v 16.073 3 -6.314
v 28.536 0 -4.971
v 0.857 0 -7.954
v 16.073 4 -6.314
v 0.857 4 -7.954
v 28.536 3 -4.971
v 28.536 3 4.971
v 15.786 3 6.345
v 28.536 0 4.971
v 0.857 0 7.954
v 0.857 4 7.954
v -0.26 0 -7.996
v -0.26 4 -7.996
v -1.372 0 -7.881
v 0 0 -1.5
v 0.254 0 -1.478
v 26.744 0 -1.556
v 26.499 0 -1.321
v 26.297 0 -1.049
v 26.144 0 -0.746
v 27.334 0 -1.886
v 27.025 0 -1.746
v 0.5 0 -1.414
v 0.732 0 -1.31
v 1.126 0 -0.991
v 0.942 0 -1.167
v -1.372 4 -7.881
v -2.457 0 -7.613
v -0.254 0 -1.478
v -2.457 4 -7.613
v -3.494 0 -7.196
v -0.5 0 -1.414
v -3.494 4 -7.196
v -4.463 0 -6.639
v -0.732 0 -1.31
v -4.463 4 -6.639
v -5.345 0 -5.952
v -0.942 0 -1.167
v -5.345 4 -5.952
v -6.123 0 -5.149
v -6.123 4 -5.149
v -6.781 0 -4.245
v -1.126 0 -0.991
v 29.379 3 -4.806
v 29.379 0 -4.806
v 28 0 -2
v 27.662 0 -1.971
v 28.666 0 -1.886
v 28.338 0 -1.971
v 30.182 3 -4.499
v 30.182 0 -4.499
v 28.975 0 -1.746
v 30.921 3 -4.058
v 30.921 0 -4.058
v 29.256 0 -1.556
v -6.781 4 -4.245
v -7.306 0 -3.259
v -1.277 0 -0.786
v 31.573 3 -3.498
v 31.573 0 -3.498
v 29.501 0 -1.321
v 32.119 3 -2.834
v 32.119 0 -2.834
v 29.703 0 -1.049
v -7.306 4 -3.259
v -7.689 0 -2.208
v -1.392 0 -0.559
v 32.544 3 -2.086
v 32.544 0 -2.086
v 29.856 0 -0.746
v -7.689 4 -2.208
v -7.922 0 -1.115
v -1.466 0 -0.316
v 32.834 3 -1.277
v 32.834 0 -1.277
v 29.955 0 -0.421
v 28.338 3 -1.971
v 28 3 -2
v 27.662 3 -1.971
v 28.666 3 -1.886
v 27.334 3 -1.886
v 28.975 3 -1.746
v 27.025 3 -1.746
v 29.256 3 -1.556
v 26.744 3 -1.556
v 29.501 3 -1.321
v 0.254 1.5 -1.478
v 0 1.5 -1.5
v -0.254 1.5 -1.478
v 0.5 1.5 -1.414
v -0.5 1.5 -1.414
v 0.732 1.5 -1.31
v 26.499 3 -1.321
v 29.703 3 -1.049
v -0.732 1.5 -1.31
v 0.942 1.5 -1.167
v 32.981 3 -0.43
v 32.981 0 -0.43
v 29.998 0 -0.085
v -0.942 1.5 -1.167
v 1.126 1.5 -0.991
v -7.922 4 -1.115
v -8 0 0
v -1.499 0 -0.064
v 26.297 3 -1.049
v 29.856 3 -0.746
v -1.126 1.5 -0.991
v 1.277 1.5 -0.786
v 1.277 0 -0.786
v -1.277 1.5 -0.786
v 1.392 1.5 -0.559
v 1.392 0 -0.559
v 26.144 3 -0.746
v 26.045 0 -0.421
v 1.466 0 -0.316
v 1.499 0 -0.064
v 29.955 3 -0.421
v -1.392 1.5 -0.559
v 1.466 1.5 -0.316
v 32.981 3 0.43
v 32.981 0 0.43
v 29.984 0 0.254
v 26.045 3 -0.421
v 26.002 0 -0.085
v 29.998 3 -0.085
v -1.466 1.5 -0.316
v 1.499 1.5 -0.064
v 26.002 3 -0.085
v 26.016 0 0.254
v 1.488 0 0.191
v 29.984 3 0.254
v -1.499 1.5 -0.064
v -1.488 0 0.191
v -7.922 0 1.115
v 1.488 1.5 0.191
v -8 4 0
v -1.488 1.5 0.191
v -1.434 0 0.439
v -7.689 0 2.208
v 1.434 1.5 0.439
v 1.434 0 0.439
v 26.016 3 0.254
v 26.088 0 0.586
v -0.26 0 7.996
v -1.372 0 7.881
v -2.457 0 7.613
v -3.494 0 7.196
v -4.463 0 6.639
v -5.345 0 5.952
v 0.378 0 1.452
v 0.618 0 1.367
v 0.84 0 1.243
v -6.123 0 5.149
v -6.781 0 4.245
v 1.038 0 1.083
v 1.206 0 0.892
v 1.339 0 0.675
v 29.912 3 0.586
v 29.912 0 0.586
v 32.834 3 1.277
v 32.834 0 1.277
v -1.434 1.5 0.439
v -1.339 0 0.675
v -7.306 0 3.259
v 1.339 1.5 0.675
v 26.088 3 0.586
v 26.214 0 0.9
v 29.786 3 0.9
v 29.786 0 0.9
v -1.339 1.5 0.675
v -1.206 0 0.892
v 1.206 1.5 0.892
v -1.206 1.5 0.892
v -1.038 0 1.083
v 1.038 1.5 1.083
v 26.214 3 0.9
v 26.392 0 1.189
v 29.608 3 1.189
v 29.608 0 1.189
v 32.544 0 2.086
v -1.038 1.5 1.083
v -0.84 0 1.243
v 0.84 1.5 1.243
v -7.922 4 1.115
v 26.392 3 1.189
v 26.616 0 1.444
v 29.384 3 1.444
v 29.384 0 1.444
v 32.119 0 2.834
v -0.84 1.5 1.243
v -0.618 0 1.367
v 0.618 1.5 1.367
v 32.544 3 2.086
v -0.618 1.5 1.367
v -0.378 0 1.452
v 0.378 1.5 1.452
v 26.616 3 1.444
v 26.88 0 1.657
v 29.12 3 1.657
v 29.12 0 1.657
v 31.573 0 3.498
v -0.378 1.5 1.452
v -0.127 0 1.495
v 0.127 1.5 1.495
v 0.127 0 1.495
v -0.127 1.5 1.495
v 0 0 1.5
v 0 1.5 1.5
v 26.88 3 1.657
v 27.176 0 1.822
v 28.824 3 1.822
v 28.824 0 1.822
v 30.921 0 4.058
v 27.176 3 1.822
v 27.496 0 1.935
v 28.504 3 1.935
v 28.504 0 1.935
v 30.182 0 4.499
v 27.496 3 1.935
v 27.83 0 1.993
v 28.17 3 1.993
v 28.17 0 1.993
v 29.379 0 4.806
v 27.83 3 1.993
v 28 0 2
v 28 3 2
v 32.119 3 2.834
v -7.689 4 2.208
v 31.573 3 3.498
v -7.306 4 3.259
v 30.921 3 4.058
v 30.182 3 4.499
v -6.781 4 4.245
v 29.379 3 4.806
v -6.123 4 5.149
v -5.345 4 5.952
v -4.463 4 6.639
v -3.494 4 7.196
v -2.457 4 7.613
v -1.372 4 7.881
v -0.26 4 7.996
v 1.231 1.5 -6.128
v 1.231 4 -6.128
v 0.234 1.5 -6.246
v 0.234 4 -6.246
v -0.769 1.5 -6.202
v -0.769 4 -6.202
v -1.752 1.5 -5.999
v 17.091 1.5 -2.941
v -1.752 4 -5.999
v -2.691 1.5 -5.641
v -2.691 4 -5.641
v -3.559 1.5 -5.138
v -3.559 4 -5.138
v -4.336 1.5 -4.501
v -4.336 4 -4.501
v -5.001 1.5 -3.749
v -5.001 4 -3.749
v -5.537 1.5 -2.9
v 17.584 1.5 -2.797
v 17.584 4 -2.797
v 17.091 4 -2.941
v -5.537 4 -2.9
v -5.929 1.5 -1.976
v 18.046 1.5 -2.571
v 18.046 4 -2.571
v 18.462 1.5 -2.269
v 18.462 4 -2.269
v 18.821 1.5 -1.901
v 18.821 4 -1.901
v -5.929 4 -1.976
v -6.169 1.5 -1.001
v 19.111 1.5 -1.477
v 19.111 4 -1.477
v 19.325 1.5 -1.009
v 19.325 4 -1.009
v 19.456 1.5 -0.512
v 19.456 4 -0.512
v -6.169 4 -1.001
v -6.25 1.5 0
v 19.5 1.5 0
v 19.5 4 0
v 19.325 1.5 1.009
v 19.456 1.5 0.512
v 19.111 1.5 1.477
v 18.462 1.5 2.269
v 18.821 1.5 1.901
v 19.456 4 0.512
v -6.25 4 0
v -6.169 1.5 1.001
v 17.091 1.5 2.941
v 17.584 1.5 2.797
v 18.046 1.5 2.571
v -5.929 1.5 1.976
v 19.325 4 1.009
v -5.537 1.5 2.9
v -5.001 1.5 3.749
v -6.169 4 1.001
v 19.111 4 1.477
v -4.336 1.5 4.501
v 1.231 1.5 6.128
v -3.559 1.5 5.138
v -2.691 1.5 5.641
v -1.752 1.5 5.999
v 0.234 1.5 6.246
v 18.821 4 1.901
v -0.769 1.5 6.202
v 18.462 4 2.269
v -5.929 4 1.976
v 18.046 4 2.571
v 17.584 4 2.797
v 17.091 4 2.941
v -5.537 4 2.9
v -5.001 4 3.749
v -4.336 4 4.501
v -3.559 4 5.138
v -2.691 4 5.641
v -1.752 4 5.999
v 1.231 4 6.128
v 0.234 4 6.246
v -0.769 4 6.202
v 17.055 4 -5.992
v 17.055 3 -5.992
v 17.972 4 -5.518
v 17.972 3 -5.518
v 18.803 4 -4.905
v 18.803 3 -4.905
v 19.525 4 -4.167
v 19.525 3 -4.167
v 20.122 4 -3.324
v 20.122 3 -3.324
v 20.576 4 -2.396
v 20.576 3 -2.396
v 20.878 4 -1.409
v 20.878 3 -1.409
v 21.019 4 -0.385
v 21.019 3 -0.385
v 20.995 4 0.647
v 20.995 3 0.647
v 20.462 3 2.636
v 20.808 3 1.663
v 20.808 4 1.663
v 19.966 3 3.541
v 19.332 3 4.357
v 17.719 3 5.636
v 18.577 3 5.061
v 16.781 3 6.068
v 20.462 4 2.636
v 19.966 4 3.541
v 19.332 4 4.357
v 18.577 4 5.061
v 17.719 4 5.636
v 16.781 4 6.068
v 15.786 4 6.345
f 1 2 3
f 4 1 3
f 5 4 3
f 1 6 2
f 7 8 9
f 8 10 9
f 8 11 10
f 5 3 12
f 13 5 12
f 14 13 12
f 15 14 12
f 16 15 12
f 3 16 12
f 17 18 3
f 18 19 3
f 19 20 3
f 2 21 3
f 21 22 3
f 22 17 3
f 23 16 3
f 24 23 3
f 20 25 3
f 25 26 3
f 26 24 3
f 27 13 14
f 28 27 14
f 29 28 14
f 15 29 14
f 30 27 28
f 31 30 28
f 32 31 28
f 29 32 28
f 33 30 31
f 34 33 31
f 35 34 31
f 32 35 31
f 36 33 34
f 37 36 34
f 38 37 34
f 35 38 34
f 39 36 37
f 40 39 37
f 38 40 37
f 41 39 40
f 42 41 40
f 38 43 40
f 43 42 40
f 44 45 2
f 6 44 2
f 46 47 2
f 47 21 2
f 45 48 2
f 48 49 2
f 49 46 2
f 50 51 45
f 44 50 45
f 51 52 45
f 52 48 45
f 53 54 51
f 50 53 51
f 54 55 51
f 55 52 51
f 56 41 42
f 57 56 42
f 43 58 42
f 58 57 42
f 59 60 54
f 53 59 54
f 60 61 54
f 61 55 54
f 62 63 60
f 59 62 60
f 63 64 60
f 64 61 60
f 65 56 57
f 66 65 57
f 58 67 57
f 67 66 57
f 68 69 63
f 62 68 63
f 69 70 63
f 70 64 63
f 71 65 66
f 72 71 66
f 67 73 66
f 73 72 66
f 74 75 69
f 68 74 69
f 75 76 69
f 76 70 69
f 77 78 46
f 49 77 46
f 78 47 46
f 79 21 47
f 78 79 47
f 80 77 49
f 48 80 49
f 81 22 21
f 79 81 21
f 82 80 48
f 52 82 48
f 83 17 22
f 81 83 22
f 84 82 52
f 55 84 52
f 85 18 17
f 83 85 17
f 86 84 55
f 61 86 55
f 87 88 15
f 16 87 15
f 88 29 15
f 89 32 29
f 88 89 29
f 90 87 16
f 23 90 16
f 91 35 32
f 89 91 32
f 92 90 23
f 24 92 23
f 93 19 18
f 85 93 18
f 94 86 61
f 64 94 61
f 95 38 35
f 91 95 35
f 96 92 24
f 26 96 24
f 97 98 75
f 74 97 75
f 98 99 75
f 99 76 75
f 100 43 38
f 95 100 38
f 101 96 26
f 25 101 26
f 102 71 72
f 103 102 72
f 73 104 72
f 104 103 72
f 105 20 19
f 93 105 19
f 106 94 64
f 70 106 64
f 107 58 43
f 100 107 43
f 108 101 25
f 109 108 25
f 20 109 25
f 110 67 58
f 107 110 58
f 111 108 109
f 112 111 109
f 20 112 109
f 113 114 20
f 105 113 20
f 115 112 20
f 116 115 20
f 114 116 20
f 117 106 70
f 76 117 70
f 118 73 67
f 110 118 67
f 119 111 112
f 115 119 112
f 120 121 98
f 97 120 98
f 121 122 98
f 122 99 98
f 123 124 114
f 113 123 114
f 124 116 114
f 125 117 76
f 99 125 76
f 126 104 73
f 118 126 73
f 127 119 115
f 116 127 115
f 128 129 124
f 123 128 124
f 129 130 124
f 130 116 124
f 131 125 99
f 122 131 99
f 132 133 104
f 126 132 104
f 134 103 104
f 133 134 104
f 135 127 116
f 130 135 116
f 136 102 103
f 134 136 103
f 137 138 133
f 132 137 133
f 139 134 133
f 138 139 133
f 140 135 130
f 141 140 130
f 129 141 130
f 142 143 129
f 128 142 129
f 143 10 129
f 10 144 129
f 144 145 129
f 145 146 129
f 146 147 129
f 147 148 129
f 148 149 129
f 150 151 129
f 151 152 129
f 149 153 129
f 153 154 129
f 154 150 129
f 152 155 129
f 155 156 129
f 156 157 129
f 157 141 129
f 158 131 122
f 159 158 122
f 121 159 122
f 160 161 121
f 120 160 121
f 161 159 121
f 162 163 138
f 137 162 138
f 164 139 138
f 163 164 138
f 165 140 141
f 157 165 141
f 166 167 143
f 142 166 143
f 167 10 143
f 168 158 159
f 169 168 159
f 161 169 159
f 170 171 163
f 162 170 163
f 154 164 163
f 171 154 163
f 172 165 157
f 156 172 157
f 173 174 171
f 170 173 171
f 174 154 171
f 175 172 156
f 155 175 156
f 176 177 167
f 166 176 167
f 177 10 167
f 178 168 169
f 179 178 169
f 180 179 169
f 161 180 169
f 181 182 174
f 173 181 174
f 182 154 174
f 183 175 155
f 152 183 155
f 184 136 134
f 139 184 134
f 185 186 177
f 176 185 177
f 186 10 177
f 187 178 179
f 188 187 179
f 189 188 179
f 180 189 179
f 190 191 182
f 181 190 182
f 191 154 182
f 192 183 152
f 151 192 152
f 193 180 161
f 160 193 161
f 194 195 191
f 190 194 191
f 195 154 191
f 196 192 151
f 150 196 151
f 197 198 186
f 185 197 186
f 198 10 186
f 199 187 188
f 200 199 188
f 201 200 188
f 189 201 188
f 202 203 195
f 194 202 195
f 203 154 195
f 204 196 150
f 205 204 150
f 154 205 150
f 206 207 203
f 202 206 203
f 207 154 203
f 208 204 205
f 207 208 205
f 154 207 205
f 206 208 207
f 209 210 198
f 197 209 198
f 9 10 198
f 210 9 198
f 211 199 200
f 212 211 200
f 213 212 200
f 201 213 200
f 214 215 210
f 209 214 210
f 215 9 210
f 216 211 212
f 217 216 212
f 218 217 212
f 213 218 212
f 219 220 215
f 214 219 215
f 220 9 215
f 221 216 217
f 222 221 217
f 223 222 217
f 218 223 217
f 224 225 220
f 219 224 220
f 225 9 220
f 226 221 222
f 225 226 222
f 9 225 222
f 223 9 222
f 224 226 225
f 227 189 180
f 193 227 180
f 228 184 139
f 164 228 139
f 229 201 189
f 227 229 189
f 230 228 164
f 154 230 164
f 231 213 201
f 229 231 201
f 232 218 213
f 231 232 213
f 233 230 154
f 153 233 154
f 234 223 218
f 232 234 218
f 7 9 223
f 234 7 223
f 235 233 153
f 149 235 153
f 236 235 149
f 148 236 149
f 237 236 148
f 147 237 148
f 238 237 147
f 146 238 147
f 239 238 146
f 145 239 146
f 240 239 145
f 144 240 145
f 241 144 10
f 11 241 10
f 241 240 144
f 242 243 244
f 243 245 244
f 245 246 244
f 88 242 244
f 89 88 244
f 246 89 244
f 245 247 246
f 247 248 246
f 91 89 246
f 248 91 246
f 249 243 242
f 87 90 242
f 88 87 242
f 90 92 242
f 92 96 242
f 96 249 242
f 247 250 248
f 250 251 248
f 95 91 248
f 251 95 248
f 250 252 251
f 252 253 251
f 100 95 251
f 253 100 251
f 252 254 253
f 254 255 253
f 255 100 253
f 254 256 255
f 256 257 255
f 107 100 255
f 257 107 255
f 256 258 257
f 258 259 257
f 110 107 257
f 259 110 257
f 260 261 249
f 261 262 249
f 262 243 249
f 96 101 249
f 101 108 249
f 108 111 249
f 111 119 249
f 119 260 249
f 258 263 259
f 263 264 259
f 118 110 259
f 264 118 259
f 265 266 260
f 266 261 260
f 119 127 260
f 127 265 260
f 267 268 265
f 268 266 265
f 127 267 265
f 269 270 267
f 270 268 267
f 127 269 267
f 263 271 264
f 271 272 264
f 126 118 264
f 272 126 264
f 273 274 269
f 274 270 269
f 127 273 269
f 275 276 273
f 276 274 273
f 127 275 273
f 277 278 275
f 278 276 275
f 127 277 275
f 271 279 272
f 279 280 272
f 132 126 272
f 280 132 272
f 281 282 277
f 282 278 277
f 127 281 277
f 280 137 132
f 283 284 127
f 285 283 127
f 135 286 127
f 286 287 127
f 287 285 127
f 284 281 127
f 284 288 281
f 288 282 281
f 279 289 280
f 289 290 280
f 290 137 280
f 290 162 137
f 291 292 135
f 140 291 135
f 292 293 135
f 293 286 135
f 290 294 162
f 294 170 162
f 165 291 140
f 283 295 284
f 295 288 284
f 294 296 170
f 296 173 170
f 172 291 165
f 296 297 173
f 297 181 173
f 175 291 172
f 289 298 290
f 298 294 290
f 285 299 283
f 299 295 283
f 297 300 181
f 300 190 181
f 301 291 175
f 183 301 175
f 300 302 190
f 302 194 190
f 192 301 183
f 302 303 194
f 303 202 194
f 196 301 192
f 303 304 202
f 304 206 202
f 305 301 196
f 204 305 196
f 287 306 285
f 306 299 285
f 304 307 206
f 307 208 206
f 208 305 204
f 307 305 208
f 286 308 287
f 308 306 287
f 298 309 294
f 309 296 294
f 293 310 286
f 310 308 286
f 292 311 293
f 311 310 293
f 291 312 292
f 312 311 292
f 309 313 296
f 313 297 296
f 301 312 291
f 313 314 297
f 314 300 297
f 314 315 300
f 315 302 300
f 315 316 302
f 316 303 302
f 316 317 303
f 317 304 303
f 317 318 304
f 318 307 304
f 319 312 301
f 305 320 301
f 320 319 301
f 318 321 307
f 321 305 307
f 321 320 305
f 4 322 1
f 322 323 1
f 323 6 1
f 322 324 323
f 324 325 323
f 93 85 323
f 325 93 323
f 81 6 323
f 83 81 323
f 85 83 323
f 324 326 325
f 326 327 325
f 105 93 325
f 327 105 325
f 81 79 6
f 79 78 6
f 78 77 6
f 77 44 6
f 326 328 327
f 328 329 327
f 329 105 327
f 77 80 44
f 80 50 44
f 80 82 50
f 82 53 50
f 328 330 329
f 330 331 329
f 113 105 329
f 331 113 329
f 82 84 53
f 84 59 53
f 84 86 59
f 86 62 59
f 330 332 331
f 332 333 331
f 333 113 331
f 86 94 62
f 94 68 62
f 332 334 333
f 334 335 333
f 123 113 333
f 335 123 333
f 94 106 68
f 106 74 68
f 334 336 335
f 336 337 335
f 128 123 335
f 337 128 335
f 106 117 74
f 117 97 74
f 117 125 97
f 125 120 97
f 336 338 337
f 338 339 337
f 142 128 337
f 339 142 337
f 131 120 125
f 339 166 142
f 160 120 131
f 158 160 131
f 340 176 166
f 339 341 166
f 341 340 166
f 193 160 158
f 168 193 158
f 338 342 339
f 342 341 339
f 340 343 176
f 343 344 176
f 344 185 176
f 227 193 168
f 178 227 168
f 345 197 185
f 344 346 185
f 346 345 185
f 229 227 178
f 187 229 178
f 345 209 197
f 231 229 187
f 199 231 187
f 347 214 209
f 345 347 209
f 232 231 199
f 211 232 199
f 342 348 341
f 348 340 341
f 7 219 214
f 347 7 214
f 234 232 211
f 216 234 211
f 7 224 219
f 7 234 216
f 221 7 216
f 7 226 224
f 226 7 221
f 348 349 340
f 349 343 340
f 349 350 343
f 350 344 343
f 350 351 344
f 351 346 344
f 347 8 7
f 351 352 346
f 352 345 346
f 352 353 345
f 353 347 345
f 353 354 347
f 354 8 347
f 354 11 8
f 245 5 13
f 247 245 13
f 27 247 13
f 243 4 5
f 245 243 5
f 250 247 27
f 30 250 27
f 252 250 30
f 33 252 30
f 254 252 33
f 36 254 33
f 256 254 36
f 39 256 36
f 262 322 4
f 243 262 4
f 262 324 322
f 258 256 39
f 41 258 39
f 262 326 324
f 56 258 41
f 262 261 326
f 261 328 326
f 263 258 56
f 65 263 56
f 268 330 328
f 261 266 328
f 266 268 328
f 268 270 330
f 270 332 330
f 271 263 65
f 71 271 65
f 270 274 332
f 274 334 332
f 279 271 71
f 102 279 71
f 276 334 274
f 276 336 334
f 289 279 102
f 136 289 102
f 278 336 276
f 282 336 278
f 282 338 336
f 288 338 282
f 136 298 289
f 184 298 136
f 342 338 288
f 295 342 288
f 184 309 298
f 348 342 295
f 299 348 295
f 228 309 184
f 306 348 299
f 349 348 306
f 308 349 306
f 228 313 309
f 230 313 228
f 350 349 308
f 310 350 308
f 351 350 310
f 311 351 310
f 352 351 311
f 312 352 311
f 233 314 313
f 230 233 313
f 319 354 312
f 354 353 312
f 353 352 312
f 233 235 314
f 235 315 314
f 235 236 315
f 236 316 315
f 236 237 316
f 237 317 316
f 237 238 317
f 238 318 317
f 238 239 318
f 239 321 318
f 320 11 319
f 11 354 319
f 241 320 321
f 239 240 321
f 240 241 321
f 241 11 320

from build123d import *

# Parameters (mm, degrees)
SKETCH1_R           = 1.5
SKETCH1_R_2         = 2
BOSS_EXTRUDE1_DEPTH = 4
CUT_EXTRUDE1_DEPTH  = 2.5
CUT_EXTRUDE2_START  = -1
SKETCH3_R           = 2
CUT_EXTRUDE2_DEPTH  = 1


with BuildPart() as part:
    # Sketch1 → Boss-Extrude1 (new body)
    with BuildSketch(Plane(origin=(0, 0, 0), x_dir=(1, 0, 0), z_dir=(0, 1, 0))):
        with BuildLine():
            Line((28.535714286, 4.971218181), (0.857142857, 7.95394909))
            ThreePointArc((0.857142857, 7.95394909), (-8, 0), (0.857142857, -7.95394909))
            Line((0.857142857, -7.95394909), (28.535714286, -4.971218181))
            ThreePointArc((28.535714286, -4.971218181), (33, 0), (28.535714286, 4.971218181))
        make_face()
        with Locations(Location((0, 0, 0), (0, 0, 270))):
            Circle(SKETCH1_R, mode=Mode.SUBTRACT)
        with Locations(Location((28, 0, 0), (0, 0, 270))):
            Circle(SKETCH1_R_2, mode=Mode.SUBTRACT)
    extrude(amount=BOSS_EXTRUDE1_DEPTH)

    # Sketch2 → Cut-Extrude1 (cut)
    with BuildSketch(Plane(origin=(0, 4, 0), x_dir=(1, 0, 0), z_dir=(0, 1, 0))):
        with BuildLine():
            Line((17.090909091, 2.941228731), (1.231060606, 6.127559856))
            ThreePointArc((1.231060606, 6.127559856), (-6.25, 0), (1.231060606, -6.127559856))
            Line((1.231060606, -6.127559856), (17.090909091, -2.941228731))
            ThreePointArc((17.090909091, -2.941228731), (19.5, 0), (17.090909091, 2.941228731))
        make_face()
    extrude(amount=-CUT_EXTRUDE1_DEPTH, mode=Mode.SUBTRACT)

    # Sketch3 → Cut-Extrude2 (cut)
    with BuildSketch(Plane(origin=(0, 4, 0), x_dir=(1, 0, 0), z_dir=(0, 1, 0)).offset(CUT_EXTRUDE2_START)):
        with BuildLine():
            Line((28.535714286, 4.971218181), (16.073296283, 6.314207991))
            ThreePointArc((16.073296283, 6.314207991), (21.027764344, -0.131247863), (15.785851253, -6.345183982))
            Line((15.785851253, -6.345183982), (28.535714286, -4.971218181))
            ThreePointArc((28.535714286, -4.971218181), (33, 0), (28.535714286, 4.971218181))
        make_face()
        with Locations(Location((28, 0, 0), (0, 0, 270))):
            Circle(SKETCH3_R, mode=Mode.SUBTRACT)
    extrude(amount=CUT_EXTRUDE2_DEPTH, mode=Mode.SUBTRACT)


solid = part.part
